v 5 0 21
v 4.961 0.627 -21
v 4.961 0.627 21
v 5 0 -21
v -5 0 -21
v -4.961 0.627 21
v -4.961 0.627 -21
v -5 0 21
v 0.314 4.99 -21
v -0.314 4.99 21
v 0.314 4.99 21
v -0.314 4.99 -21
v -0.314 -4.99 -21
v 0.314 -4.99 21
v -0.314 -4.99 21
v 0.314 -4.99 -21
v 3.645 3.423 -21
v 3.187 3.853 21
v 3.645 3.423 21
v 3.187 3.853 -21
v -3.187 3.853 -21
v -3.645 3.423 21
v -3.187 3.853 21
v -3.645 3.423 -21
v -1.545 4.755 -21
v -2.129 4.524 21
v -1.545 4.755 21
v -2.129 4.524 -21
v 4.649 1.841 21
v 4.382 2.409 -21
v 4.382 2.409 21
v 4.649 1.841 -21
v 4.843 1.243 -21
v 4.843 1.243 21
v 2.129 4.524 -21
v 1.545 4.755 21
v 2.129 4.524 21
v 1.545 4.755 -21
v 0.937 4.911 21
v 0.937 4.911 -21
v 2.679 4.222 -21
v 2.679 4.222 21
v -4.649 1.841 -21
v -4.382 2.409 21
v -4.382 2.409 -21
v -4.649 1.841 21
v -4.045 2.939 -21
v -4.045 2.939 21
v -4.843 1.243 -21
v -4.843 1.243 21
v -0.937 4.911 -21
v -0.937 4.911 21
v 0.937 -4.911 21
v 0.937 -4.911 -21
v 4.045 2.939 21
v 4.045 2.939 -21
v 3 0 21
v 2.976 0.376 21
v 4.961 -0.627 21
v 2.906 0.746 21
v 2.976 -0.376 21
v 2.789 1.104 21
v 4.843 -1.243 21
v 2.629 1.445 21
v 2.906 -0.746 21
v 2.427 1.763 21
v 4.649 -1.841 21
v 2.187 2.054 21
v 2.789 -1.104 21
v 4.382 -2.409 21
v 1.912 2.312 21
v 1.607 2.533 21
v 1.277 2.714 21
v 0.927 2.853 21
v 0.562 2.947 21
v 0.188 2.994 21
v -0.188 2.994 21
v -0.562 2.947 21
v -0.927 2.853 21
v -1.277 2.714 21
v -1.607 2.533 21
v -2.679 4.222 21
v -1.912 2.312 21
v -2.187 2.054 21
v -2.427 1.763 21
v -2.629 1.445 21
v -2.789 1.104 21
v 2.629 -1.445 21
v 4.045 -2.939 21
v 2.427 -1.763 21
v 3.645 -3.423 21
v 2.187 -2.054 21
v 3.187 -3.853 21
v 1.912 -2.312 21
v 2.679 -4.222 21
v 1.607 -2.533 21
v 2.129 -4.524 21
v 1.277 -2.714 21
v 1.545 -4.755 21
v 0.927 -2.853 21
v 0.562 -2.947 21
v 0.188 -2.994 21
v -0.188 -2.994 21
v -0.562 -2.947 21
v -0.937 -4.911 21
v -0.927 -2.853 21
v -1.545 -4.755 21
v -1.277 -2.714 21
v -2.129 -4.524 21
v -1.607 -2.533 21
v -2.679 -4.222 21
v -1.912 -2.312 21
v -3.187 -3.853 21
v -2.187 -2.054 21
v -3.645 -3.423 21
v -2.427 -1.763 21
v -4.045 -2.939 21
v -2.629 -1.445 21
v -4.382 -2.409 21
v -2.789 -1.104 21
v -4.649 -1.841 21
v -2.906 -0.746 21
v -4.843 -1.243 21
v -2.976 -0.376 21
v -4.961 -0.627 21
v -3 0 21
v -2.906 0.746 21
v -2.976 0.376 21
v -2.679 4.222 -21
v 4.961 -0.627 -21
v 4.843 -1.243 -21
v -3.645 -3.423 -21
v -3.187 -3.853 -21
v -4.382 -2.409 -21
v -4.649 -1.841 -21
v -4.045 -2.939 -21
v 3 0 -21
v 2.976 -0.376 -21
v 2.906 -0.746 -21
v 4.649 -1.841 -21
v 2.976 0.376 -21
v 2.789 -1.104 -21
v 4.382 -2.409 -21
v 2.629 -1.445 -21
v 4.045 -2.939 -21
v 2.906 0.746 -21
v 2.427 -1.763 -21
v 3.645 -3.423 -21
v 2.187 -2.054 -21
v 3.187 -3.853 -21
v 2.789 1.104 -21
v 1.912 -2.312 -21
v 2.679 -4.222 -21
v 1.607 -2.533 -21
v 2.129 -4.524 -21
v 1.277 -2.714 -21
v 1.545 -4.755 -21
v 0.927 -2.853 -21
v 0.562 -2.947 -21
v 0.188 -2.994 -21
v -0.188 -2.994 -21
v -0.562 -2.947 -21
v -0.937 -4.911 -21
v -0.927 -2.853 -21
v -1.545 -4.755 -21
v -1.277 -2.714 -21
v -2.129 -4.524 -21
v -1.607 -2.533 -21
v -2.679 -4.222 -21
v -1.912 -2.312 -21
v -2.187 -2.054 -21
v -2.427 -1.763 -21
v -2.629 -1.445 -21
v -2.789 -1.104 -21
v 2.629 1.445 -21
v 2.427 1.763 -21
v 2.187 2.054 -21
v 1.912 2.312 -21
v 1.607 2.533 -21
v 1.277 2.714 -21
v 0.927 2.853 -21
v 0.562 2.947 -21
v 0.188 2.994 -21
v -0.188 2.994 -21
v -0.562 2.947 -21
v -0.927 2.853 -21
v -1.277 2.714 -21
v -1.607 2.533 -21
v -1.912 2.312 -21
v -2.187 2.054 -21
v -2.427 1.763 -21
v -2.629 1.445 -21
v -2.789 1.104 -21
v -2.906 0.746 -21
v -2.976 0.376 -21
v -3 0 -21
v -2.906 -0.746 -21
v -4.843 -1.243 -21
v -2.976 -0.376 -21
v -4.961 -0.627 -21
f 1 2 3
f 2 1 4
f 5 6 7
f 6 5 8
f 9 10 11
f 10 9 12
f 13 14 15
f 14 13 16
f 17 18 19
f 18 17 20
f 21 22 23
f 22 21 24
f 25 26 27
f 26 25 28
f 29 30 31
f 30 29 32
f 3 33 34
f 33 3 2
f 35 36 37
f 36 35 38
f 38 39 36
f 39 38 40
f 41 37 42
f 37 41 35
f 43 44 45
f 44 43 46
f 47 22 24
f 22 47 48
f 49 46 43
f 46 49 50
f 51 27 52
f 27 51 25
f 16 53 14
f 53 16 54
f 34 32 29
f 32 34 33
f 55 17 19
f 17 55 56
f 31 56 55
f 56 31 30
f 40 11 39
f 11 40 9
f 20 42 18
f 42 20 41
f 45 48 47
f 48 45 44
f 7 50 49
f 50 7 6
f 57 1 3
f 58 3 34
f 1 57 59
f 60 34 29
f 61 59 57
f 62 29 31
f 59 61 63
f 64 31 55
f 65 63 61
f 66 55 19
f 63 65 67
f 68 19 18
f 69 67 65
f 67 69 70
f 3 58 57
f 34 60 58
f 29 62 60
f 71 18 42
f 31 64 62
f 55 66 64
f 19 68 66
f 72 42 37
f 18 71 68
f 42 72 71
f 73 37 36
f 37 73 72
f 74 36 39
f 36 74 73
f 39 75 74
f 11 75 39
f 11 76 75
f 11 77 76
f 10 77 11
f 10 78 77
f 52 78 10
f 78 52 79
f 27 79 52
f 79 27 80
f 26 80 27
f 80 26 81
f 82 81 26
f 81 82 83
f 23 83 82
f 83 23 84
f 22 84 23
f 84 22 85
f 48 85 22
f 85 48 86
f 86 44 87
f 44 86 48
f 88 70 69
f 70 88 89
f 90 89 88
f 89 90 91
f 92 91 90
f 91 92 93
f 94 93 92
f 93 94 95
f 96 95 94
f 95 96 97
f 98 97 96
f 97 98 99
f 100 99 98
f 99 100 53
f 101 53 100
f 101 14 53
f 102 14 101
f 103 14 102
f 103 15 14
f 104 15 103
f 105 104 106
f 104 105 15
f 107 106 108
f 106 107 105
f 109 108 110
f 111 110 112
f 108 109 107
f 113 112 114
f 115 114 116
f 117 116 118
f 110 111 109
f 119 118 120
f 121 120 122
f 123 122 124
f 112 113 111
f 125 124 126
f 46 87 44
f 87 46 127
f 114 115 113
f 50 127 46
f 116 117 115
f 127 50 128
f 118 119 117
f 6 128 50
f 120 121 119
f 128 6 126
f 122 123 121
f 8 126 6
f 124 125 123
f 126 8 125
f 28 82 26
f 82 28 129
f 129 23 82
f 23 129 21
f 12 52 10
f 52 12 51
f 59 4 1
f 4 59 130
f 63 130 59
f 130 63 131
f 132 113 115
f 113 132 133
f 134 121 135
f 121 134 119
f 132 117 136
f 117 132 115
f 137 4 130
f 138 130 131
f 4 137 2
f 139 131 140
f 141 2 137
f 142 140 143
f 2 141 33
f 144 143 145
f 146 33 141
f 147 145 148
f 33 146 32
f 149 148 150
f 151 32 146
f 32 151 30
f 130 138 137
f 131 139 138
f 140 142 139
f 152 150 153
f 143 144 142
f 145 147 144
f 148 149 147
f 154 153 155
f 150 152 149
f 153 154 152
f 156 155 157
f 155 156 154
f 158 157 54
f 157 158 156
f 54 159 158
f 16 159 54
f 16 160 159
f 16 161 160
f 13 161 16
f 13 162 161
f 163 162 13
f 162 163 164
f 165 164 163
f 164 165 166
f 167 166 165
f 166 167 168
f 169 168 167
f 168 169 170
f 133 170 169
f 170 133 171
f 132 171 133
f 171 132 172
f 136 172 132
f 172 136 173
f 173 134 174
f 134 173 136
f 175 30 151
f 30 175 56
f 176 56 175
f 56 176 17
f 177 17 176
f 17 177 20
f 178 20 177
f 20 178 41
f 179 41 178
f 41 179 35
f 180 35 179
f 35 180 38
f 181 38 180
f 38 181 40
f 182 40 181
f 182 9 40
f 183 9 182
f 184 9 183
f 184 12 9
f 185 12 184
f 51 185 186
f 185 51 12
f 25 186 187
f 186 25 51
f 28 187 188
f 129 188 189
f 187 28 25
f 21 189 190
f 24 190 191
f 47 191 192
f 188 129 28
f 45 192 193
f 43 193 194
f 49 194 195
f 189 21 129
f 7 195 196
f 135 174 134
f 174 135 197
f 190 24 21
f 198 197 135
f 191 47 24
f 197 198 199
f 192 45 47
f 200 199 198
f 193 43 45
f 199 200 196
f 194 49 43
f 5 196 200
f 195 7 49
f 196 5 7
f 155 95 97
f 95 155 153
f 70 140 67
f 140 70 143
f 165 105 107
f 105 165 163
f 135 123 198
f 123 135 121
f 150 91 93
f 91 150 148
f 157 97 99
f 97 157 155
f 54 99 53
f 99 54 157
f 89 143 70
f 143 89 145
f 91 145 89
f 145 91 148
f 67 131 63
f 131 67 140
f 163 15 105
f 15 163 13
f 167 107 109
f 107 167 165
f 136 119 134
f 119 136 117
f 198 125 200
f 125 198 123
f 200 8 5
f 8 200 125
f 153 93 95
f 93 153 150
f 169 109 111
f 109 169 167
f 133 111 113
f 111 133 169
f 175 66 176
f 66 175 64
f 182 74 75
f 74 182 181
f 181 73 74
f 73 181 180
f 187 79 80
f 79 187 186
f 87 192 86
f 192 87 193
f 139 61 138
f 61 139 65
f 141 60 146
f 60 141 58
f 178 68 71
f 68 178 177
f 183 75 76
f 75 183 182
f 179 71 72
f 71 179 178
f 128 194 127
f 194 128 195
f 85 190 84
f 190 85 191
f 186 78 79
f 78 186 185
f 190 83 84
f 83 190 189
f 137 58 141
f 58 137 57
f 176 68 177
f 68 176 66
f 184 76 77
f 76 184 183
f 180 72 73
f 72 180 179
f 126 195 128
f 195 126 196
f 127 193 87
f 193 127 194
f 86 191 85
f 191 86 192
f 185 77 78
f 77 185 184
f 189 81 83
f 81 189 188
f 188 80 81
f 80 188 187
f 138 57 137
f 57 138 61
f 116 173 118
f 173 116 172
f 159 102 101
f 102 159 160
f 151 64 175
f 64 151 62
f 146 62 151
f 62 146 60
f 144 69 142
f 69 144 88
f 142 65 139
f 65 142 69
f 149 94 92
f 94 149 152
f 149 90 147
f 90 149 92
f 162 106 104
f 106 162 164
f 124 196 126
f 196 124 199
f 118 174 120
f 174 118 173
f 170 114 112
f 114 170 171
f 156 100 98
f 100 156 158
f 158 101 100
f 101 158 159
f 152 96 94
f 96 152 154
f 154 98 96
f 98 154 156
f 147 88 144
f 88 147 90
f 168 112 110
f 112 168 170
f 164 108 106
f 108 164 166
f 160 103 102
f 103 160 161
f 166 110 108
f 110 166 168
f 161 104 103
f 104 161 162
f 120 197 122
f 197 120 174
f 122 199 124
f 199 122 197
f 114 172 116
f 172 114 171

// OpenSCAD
$fn = 50;


difference() {
	union() {
		translate(v = [0, 0, -21.0000000000]) {
			cylinder(h = 42, r = 5.0000000000);
		}
	}
	union() {
		translate(v = [0, 0, -100.0000000000]) {
			cylinder(h = 200, r = 3);
		}
	}
}
